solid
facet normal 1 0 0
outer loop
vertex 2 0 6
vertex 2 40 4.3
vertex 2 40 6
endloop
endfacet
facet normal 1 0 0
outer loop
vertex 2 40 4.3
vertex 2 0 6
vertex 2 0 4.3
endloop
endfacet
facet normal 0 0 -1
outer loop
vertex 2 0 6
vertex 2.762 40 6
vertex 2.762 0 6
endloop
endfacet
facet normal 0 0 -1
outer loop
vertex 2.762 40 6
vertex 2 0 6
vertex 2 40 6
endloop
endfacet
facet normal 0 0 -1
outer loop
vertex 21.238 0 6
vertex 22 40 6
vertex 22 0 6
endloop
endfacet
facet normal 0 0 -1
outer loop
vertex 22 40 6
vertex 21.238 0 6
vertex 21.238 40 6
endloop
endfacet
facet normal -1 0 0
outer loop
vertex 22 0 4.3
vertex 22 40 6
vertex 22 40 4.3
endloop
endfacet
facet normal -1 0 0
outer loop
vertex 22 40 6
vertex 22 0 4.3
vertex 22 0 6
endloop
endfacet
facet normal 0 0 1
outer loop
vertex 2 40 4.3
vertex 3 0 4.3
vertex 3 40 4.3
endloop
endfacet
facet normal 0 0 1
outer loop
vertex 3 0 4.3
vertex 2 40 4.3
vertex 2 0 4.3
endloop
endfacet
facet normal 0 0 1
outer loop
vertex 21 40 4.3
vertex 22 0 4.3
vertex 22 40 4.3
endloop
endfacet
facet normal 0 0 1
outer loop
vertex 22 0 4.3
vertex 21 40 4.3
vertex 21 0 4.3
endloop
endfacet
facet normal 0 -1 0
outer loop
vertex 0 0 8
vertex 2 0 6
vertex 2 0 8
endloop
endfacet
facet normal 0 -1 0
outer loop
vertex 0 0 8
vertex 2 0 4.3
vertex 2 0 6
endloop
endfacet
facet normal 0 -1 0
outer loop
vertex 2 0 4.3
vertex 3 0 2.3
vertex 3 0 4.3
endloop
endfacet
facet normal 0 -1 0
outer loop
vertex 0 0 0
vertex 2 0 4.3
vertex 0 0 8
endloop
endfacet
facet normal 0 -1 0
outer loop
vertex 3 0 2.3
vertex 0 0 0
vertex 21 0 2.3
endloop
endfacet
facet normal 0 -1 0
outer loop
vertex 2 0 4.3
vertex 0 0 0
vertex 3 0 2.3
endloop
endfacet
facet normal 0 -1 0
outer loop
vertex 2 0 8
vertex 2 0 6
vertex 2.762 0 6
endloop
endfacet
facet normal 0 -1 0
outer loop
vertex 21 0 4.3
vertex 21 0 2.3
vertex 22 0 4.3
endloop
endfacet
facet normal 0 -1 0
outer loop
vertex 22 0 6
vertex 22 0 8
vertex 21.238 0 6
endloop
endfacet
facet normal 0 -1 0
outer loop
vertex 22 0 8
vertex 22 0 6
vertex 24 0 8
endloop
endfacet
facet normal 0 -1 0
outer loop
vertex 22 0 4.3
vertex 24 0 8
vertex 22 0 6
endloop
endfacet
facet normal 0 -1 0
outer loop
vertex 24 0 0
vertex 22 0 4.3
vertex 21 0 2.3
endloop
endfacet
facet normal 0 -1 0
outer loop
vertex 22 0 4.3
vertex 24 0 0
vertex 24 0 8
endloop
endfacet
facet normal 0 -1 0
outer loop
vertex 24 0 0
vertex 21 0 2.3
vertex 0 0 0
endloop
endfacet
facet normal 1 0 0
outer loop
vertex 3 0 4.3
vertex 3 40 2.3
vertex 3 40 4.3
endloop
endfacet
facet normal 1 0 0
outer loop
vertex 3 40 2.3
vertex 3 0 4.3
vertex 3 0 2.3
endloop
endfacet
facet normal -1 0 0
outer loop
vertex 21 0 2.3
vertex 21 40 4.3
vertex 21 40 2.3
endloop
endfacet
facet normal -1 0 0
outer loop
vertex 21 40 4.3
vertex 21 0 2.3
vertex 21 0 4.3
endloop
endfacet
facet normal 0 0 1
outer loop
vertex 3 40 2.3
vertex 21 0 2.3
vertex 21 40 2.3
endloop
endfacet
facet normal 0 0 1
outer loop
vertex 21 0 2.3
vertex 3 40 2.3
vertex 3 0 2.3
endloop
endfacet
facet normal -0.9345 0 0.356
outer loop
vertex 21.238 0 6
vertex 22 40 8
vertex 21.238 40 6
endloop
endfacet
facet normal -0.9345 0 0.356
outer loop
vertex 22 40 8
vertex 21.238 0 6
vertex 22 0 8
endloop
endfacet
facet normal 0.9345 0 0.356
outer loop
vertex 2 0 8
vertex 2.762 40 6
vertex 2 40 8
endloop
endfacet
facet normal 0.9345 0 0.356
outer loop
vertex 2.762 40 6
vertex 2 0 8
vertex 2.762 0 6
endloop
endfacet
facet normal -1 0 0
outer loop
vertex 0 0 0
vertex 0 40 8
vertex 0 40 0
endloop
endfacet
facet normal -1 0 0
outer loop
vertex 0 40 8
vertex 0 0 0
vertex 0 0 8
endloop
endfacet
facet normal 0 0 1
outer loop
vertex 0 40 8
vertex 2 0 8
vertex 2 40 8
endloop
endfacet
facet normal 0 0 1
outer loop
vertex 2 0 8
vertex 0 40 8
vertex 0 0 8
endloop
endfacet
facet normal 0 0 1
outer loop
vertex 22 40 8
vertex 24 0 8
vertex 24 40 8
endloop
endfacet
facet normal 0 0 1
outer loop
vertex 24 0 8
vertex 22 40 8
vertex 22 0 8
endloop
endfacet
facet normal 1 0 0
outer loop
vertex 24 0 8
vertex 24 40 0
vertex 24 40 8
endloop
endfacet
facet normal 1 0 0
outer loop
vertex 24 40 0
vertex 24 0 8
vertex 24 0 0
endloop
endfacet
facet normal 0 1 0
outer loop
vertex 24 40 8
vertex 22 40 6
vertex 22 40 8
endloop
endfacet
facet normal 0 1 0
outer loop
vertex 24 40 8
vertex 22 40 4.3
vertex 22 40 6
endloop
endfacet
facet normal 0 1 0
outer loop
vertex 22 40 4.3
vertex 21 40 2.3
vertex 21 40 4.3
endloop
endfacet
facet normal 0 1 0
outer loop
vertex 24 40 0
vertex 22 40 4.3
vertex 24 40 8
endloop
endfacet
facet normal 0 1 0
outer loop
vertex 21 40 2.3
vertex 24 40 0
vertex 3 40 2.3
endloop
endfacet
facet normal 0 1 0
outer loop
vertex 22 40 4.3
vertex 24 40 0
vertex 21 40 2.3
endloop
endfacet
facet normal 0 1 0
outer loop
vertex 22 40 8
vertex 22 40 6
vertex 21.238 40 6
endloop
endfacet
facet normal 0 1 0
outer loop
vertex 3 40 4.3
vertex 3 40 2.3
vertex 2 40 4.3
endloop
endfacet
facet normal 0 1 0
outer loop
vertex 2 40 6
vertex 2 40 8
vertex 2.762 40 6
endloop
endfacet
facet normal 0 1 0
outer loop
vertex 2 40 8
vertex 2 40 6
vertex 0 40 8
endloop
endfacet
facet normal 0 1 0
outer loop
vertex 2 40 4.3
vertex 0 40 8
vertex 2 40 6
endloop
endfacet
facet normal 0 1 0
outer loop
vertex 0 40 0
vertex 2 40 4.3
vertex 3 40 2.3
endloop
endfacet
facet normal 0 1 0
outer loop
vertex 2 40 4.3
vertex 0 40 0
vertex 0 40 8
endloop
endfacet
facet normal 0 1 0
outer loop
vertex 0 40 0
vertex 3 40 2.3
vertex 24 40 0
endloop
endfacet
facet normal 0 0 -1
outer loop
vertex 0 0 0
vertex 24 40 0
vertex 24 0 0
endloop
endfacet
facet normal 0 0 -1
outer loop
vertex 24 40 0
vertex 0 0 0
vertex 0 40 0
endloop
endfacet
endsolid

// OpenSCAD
bw = 20;
bl = 40;
ht = 8;
bt = 1.7;
w = 2;
o = 1.6;

difference() {
   cube([bw+w*2,bl,ht]);
   union() {
      translate([w,0,ht-bt-2]) cube([bw,bl+1,bt]);
      translate([w*1.5,0,ht-bt-4]) cube([bw-w,bl+1,ht]);
      hull() {
         translate([w,0,ht]) cube([bw,bl+1,0.1]);
         translate([w+o/2,0,ht-2.1]) cube([bw-o,bl+1,bt]);
      }
   }
}
